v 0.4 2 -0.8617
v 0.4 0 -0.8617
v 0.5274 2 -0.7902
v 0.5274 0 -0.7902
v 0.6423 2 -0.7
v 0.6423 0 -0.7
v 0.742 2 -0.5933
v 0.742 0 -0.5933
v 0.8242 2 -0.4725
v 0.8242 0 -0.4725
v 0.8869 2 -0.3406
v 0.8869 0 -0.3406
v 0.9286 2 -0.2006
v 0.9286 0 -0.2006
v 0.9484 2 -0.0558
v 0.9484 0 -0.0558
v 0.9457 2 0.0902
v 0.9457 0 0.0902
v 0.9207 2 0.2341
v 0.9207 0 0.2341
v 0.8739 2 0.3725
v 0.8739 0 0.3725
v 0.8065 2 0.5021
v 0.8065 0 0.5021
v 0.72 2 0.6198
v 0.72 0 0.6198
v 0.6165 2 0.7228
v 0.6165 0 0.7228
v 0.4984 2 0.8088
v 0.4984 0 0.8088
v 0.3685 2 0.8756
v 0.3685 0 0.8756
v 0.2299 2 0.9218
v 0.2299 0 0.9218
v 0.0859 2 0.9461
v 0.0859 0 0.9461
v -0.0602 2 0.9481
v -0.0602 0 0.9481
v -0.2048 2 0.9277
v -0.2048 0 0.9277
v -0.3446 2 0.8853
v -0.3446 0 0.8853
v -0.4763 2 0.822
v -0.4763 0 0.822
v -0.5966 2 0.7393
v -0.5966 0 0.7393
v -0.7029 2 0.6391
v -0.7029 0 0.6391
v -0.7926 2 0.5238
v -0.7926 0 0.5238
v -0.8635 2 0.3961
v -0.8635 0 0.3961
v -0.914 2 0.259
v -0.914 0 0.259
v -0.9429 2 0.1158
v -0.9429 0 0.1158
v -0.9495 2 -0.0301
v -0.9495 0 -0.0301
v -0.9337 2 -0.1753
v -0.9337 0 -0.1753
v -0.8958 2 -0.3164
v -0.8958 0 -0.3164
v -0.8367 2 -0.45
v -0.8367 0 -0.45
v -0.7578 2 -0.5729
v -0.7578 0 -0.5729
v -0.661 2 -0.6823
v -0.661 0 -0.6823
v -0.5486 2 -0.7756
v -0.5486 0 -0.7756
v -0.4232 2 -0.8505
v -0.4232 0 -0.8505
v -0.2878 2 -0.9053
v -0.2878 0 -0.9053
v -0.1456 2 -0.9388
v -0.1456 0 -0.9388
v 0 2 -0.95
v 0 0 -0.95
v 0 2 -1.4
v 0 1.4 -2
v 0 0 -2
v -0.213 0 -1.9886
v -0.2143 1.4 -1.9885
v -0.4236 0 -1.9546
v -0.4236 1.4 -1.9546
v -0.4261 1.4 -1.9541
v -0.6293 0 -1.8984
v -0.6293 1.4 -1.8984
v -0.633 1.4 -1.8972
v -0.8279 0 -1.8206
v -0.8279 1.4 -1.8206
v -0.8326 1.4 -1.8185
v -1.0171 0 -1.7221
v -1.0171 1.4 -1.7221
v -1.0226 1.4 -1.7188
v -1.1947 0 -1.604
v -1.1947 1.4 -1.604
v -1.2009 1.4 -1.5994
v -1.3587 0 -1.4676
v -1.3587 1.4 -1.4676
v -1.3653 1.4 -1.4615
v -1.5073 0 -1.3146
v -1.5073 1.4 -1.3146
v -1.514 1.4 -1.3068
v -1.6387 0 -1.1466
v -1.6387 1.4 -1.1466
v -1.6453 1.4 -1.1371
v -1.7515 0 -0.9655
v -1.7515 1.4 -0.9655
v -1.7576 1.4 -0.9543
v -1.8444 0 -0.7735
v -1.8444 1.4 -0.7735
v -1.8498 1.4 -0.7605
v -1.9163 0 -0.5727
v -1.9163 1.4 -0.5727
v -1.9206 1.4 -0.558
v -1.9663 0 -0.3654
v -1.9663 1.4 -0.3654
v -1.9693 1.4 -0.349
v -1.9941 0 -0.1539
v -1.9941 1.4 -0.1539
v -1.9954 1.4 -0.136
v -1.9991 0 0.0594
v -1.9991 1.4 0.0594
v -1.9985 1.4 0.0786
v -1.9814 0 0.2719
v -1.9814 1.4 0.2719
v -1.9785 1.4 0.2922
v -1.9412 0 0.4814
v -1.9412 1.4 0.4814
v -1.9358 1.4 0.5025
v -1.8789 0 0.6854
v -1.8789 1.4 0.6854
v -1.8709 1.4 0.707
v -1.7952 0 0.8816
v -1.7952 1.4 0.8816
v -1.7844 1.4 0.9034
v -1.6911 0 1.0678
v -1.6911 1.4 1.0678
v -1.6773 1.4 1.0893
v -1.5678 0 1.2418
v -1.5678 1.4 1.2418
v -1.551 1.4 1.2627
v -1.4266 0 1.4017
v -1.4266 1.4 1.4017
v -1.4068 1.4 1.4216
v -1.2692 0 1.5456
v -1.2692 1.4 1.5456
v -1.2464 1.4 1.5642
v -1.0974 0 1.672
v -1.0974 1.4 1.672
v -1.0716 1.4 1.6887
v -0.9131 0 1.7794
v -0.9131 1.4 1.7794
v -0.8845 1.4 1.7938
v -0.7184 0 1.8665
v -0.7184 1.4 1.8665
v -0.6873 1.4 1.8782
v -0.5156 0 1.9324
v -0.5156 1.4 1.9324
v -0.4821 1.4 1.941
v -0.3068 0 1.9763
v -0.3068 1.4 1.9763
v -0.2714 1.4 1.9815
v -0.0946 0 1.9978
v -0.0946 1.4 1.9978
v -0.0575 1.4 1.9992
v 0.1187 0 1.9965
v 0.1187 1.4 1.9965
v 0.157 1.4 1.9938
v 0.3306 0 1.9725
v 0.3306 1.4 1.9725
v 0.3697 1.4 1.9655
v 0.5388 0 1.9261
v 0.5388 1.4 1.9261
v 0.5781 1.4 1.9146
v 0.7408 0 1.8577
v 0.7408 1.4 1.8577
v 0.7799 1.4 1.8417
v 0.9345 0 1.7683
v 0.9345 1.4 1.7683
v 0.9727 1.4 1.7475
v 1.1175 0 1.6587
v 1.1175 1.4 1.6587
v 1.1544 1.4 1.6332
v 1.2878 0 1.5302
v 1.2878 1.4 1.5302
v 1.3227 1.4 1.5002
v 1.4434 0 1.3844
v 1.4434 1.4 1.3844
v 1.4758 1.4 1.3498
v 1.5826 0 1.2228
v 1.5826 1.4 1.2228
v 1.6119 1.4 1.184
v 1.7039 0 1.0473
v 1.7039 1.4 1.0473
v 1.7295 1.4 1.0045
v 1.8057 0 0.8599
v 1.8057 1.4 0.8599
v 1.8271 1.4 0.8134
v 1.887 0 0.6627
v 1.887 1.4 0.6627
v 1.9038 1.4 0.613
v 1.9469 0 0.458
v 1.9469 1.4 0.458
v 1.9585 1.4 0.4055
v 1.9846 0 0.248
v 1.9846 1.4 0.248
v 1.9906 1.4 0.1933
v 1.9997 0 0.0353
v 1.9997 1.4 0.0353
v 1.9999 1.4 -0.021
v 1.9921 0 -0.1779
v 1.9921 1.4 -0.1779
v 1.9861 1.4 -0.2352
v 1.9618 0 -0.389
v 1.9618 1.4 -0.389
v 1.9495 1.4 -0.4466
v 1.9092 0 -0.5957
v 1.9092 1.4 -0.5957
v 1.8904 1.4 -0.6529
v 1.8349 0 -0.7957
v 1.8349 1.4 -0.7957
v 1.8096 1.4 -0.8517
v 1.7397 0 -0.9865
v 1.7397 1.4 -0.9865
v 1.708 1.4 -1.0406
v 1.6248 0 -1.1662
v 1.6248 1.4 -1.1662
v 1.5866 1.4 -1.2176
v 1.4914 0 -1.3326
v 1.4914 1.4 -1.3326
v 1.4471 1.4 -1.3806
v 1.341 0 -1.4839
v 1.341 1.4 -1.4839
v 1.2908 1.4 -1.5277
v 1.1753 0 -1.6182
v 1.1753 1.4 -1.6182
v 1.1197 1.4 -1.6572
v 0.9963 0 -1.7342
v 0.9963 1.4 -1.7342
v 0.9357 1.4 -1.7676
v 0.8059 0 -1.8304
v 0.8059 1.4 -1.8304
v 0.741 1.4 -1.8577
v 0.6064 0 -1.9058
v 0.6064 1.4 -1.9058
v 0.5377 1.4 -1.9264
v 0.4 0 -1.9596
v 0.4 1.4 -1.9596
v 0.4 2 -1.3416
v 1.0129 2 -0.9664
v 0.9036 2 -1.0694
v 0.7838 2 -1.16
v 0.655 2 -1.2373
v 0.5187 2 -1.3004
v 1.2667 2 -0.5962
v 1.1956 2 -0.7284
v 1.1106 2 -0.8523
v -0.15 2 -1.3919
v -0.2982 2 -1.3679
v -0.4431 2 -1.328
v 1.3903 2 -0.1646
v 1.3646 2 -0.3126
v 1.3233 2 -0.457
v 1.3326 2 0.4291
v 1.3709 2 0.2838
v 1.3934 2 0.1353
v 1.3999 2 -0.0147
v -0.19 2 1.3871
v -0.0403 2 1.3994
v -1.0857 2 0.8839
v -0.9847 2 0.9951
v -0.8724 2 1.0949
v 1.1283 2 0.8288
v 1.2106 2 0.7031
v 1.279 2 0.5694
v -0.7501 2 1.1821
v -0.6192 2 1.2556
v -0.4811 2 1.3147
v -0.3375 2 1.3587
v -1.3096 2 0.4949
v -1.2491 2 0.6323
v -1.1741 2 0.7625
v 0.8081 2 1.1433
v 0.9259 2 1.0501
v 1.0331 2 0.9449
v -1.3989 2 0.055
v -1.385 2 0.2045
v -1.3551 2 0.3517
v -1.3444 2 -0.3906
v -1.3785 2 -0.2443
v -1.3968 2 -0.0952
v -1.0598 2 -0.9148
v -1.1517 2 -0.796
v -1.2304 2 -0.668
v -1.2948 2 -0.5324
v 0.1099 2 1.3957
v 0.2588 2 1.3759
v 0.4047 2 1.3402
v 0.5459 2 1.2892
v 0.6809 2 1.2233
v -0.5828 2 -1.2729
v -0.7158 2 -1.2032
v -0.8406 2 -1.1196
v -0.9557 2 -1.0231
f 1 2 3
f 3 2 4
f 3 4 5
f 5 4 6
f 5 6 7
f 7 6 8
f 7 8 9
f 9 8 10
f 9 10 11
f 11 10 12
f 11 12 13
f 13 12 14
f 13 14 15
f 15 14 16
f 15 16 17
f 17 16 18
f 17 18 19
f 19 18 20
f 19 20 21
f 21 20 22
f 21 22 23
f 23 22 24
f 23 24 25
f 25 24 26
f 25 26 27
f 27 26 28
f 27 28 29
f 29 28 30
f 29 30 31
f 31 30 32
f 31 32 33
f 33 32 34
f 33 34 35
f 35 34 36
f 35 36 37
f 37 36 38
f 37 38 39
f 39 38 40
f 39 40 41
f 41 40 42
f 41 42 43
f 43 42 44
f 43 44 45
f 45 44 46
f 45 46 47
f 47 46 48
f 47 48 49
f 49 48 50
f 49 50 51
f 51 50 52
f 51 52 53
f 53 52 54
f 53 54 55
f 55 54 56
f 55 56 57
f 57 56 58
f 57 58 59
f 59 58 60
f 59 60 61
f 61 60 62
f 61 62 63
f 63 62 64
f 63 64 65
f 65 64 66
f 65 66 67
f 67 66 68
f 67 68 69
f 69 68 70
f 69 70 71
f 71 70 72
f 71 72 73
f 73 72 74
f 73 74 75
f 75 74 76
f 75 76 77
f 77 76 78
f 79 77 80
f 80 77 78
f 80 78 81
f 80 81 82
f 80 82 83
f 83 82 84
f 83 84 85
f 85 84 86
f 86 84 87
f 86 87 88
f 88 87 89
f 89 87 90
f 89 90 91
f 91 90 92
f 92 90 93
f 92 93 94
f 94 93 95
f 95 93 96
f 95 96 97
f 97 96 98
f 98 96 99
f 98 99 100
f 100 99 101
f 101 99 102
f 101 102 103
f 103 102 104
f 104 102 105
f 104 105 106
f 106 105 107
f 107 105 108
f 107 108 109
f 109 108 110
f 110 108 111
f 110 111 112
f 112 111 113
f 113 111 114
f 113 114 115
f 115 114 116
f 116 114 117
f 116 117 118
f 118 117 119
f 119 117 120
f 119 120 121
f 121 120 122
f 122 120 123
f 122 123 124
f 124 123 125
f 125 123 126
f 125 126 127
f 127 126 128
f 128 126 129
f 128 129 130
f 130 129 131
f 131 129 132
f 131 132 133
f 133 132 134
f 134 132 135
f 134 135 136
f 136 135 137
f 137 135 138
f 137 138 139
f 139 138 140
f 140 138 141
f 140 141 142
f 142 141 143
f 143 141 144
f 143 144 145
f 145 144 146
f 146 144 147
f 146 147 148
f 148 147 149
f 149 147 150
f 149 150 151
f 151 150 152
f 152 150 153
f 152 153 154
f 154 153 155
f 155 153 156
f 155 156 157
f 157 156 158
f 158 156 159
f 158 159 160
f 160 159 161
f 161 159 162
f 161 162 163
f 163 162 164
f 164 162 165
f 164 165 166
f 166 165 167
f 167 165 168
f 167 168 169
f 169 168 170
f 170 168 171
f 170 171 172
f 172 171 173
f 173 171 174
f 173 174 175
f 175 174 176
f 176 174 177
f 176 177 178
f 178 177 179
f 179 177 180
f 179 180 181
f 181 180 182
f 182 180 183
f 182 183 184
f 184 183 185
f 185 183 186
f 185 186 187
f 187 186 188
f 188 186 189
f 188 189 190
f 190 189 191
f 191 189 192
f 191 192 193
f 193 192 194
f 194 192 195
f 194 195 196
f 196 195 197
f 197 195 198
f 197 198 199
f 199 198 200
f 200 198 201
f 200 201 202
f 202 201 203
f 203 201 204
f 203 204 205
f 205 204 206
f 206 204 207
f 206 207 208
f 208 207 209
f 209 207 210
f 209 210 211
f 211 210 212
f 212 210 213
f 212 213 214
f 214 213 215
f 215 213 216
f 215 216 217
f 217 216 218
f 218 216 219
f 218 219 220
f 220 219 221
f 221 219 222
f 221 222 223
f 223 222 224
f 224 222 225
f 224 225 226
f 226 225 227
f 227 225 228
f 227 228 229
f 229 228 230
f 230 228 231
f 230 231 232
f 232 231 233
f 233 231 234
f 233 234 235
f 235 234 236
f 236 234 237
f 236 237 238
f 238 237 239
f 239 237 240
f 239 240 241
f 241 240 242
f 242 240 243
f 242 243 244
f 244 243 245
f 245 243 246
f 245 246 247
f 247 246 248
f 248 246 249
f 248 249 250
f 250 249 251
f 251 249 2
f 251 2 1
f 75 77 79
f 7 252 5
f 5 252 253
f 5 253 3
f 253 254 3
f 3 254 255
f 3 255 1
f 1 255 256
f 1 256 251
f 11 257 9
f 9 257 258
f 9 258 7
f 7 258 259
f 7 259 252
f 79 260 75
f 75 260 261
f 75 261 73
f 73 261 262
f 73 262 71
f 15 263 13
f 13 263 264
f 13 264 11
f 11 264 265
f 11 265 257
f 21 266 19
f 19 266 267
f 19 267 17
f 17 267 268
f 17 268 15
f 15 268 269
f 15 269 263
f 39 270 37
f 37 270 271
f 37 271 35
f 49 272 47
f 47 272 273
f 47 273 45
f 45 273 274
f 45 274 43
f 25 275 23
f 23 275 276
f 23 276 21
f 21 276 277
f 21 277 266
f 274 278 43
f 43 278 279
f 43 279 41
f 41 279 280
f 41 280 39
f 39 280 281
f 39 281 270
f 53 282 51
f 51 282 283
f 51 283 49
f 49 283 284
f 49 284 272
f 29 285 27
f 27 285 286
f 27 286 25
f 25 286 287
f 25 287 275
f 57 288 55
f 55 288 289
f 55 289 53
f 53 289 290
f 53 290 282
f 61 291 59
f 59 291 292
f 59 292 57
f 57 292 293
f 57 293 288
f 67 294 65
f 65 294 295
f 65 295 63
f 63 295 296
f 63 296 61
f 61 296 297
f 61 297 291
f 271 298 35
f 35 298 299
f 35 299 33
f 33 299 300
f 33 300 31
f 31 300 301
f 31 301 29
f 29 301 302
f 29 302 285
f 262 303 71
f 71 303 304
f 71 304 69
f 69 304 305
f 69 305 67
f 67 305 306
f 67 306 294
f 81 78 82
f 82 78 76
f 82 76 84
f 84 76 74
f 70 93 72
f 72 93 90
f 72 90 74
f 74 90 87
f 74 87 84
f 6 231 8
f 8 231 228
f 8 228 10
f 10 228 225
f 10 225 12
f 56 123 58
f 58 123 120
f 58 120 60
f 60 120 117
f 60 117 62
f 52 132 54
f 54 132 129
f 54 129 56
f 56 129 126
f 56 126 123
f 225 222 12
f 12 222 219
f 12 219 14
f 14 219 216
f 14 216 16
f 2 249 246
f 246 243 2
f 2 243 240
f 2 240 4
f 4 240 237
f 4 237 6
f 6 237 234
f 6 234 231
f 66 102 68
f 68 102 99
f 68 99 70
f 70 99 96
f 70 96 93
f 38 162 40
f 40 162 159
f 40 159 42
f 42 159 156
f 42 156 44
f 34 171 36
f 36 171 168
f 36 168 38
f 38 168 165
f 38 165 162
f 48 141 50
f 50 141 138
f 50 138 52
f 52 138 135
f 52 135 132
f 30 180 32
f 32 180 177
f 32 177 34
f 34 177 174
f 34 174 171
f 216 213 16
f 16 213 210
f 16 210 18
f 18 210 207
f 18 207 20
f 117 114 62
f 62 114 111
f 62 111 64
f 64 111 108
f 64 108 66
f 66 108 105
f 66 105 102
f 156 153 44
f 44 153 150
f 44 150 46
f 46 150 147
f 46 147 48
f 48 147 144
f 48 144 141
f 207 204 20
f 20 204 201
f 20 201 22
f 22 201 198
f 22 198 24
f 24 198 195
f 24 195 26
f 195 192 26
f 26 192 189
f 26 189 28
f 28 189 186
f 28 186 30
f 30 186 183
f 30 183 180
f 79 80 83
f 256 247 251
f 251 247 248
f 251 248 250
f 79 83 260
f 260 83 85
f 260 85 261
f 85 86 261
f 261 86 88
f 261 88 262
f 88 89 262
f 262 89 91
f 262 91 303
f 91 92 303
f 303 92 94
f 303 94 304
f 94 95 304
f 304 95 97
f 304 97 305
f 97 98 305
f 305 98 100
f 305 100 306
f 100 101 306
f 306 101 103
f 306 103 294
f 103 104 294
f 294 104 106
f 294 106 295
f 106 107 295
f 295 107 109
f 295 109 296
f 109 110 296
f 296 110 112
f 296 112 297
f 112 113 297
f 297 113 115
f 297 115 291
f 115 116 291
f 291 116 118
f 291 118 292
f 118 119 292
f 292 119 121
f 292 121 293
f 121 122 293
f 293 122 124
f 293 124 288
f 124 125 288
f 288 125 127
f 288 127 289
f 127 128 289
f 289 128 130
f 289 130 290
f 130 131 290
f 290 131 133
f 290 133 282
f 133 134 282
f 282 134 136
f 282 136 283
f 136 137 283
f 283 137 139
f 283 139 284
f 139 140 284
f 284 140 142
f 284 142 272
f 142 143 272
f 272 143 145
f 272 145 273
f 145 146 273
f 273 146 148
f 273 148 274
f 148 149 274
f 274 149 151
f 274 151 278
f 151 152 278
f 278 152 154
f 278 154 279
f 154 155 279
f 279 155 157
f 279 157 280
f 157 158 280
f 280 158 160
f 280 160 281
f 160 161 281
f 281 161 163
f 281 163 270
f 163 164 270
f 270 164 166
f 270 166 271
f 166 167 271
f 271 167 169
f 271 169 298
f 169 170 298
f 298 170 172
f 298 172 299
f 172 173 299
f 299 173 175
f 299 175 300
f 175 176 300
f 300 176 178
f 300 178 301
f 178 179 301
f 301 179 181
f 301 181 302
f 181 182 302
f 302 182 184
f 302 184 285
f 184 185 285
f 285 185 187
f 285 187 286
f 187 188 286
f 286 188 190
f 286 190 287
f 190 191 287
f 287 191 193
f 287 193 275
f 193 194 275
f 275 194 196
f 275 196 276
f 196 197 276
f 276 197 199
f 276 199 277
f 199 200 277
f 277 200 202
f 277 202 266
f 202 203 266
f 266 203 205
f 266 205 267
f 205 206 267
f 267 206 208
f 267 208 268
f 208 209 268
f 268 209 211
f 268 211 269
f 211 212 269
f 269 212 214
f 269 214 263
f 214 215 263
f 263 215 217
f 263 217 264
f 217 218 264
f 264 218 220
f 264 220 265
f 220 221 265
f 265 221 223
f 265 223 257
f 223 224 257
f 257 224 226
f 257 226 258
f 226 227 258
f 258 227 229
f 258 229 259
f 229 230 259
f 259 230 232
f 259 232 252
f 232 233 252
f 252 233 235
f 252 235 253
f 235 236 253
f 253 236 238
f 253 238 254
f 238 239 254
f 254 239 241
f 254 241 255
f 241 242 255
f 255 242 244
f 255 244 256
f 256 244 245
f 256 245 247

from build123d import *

# Parameters (mm, degrees)
EXTRUDE_1_DEPTH = 2
CHAMFER_1_SIZE  = 0.6


with BuildPart() as part:
    # Эскиз1 → Бобышка-Вытянуть1 (new body)
    with BuildSketch(Plane(origin=(0, 0, 0), x_dir=(1, 0, 0), z_dir=(0, 1, 0))):
        with BuildLine():
            Line((0, 0.95), (0, 2))
            ThreePointArc((0, 2), (-0.201017924, -1.989872306), (0.4, 1.959591794))
            Line((0.4, 1.959591794), (0.4, 0.861684397))
            ThreePointArc((0.4, 0.861684397), (-0.204816775, -0.92765839), (0, 0.95))
        make_face()
    extrude(amount=EXTRUDE_1_DEPTH)

    # Фаска1
    chamfer_1_edges = [part.edges().sort_by_distance(p)[0] for p in [
        (-0.201017924, 2, 1.989872306),
    ]]
    chamfer(chamfer_1_edges, length=CHAMFER_1_SIZE)


solid = part.part
